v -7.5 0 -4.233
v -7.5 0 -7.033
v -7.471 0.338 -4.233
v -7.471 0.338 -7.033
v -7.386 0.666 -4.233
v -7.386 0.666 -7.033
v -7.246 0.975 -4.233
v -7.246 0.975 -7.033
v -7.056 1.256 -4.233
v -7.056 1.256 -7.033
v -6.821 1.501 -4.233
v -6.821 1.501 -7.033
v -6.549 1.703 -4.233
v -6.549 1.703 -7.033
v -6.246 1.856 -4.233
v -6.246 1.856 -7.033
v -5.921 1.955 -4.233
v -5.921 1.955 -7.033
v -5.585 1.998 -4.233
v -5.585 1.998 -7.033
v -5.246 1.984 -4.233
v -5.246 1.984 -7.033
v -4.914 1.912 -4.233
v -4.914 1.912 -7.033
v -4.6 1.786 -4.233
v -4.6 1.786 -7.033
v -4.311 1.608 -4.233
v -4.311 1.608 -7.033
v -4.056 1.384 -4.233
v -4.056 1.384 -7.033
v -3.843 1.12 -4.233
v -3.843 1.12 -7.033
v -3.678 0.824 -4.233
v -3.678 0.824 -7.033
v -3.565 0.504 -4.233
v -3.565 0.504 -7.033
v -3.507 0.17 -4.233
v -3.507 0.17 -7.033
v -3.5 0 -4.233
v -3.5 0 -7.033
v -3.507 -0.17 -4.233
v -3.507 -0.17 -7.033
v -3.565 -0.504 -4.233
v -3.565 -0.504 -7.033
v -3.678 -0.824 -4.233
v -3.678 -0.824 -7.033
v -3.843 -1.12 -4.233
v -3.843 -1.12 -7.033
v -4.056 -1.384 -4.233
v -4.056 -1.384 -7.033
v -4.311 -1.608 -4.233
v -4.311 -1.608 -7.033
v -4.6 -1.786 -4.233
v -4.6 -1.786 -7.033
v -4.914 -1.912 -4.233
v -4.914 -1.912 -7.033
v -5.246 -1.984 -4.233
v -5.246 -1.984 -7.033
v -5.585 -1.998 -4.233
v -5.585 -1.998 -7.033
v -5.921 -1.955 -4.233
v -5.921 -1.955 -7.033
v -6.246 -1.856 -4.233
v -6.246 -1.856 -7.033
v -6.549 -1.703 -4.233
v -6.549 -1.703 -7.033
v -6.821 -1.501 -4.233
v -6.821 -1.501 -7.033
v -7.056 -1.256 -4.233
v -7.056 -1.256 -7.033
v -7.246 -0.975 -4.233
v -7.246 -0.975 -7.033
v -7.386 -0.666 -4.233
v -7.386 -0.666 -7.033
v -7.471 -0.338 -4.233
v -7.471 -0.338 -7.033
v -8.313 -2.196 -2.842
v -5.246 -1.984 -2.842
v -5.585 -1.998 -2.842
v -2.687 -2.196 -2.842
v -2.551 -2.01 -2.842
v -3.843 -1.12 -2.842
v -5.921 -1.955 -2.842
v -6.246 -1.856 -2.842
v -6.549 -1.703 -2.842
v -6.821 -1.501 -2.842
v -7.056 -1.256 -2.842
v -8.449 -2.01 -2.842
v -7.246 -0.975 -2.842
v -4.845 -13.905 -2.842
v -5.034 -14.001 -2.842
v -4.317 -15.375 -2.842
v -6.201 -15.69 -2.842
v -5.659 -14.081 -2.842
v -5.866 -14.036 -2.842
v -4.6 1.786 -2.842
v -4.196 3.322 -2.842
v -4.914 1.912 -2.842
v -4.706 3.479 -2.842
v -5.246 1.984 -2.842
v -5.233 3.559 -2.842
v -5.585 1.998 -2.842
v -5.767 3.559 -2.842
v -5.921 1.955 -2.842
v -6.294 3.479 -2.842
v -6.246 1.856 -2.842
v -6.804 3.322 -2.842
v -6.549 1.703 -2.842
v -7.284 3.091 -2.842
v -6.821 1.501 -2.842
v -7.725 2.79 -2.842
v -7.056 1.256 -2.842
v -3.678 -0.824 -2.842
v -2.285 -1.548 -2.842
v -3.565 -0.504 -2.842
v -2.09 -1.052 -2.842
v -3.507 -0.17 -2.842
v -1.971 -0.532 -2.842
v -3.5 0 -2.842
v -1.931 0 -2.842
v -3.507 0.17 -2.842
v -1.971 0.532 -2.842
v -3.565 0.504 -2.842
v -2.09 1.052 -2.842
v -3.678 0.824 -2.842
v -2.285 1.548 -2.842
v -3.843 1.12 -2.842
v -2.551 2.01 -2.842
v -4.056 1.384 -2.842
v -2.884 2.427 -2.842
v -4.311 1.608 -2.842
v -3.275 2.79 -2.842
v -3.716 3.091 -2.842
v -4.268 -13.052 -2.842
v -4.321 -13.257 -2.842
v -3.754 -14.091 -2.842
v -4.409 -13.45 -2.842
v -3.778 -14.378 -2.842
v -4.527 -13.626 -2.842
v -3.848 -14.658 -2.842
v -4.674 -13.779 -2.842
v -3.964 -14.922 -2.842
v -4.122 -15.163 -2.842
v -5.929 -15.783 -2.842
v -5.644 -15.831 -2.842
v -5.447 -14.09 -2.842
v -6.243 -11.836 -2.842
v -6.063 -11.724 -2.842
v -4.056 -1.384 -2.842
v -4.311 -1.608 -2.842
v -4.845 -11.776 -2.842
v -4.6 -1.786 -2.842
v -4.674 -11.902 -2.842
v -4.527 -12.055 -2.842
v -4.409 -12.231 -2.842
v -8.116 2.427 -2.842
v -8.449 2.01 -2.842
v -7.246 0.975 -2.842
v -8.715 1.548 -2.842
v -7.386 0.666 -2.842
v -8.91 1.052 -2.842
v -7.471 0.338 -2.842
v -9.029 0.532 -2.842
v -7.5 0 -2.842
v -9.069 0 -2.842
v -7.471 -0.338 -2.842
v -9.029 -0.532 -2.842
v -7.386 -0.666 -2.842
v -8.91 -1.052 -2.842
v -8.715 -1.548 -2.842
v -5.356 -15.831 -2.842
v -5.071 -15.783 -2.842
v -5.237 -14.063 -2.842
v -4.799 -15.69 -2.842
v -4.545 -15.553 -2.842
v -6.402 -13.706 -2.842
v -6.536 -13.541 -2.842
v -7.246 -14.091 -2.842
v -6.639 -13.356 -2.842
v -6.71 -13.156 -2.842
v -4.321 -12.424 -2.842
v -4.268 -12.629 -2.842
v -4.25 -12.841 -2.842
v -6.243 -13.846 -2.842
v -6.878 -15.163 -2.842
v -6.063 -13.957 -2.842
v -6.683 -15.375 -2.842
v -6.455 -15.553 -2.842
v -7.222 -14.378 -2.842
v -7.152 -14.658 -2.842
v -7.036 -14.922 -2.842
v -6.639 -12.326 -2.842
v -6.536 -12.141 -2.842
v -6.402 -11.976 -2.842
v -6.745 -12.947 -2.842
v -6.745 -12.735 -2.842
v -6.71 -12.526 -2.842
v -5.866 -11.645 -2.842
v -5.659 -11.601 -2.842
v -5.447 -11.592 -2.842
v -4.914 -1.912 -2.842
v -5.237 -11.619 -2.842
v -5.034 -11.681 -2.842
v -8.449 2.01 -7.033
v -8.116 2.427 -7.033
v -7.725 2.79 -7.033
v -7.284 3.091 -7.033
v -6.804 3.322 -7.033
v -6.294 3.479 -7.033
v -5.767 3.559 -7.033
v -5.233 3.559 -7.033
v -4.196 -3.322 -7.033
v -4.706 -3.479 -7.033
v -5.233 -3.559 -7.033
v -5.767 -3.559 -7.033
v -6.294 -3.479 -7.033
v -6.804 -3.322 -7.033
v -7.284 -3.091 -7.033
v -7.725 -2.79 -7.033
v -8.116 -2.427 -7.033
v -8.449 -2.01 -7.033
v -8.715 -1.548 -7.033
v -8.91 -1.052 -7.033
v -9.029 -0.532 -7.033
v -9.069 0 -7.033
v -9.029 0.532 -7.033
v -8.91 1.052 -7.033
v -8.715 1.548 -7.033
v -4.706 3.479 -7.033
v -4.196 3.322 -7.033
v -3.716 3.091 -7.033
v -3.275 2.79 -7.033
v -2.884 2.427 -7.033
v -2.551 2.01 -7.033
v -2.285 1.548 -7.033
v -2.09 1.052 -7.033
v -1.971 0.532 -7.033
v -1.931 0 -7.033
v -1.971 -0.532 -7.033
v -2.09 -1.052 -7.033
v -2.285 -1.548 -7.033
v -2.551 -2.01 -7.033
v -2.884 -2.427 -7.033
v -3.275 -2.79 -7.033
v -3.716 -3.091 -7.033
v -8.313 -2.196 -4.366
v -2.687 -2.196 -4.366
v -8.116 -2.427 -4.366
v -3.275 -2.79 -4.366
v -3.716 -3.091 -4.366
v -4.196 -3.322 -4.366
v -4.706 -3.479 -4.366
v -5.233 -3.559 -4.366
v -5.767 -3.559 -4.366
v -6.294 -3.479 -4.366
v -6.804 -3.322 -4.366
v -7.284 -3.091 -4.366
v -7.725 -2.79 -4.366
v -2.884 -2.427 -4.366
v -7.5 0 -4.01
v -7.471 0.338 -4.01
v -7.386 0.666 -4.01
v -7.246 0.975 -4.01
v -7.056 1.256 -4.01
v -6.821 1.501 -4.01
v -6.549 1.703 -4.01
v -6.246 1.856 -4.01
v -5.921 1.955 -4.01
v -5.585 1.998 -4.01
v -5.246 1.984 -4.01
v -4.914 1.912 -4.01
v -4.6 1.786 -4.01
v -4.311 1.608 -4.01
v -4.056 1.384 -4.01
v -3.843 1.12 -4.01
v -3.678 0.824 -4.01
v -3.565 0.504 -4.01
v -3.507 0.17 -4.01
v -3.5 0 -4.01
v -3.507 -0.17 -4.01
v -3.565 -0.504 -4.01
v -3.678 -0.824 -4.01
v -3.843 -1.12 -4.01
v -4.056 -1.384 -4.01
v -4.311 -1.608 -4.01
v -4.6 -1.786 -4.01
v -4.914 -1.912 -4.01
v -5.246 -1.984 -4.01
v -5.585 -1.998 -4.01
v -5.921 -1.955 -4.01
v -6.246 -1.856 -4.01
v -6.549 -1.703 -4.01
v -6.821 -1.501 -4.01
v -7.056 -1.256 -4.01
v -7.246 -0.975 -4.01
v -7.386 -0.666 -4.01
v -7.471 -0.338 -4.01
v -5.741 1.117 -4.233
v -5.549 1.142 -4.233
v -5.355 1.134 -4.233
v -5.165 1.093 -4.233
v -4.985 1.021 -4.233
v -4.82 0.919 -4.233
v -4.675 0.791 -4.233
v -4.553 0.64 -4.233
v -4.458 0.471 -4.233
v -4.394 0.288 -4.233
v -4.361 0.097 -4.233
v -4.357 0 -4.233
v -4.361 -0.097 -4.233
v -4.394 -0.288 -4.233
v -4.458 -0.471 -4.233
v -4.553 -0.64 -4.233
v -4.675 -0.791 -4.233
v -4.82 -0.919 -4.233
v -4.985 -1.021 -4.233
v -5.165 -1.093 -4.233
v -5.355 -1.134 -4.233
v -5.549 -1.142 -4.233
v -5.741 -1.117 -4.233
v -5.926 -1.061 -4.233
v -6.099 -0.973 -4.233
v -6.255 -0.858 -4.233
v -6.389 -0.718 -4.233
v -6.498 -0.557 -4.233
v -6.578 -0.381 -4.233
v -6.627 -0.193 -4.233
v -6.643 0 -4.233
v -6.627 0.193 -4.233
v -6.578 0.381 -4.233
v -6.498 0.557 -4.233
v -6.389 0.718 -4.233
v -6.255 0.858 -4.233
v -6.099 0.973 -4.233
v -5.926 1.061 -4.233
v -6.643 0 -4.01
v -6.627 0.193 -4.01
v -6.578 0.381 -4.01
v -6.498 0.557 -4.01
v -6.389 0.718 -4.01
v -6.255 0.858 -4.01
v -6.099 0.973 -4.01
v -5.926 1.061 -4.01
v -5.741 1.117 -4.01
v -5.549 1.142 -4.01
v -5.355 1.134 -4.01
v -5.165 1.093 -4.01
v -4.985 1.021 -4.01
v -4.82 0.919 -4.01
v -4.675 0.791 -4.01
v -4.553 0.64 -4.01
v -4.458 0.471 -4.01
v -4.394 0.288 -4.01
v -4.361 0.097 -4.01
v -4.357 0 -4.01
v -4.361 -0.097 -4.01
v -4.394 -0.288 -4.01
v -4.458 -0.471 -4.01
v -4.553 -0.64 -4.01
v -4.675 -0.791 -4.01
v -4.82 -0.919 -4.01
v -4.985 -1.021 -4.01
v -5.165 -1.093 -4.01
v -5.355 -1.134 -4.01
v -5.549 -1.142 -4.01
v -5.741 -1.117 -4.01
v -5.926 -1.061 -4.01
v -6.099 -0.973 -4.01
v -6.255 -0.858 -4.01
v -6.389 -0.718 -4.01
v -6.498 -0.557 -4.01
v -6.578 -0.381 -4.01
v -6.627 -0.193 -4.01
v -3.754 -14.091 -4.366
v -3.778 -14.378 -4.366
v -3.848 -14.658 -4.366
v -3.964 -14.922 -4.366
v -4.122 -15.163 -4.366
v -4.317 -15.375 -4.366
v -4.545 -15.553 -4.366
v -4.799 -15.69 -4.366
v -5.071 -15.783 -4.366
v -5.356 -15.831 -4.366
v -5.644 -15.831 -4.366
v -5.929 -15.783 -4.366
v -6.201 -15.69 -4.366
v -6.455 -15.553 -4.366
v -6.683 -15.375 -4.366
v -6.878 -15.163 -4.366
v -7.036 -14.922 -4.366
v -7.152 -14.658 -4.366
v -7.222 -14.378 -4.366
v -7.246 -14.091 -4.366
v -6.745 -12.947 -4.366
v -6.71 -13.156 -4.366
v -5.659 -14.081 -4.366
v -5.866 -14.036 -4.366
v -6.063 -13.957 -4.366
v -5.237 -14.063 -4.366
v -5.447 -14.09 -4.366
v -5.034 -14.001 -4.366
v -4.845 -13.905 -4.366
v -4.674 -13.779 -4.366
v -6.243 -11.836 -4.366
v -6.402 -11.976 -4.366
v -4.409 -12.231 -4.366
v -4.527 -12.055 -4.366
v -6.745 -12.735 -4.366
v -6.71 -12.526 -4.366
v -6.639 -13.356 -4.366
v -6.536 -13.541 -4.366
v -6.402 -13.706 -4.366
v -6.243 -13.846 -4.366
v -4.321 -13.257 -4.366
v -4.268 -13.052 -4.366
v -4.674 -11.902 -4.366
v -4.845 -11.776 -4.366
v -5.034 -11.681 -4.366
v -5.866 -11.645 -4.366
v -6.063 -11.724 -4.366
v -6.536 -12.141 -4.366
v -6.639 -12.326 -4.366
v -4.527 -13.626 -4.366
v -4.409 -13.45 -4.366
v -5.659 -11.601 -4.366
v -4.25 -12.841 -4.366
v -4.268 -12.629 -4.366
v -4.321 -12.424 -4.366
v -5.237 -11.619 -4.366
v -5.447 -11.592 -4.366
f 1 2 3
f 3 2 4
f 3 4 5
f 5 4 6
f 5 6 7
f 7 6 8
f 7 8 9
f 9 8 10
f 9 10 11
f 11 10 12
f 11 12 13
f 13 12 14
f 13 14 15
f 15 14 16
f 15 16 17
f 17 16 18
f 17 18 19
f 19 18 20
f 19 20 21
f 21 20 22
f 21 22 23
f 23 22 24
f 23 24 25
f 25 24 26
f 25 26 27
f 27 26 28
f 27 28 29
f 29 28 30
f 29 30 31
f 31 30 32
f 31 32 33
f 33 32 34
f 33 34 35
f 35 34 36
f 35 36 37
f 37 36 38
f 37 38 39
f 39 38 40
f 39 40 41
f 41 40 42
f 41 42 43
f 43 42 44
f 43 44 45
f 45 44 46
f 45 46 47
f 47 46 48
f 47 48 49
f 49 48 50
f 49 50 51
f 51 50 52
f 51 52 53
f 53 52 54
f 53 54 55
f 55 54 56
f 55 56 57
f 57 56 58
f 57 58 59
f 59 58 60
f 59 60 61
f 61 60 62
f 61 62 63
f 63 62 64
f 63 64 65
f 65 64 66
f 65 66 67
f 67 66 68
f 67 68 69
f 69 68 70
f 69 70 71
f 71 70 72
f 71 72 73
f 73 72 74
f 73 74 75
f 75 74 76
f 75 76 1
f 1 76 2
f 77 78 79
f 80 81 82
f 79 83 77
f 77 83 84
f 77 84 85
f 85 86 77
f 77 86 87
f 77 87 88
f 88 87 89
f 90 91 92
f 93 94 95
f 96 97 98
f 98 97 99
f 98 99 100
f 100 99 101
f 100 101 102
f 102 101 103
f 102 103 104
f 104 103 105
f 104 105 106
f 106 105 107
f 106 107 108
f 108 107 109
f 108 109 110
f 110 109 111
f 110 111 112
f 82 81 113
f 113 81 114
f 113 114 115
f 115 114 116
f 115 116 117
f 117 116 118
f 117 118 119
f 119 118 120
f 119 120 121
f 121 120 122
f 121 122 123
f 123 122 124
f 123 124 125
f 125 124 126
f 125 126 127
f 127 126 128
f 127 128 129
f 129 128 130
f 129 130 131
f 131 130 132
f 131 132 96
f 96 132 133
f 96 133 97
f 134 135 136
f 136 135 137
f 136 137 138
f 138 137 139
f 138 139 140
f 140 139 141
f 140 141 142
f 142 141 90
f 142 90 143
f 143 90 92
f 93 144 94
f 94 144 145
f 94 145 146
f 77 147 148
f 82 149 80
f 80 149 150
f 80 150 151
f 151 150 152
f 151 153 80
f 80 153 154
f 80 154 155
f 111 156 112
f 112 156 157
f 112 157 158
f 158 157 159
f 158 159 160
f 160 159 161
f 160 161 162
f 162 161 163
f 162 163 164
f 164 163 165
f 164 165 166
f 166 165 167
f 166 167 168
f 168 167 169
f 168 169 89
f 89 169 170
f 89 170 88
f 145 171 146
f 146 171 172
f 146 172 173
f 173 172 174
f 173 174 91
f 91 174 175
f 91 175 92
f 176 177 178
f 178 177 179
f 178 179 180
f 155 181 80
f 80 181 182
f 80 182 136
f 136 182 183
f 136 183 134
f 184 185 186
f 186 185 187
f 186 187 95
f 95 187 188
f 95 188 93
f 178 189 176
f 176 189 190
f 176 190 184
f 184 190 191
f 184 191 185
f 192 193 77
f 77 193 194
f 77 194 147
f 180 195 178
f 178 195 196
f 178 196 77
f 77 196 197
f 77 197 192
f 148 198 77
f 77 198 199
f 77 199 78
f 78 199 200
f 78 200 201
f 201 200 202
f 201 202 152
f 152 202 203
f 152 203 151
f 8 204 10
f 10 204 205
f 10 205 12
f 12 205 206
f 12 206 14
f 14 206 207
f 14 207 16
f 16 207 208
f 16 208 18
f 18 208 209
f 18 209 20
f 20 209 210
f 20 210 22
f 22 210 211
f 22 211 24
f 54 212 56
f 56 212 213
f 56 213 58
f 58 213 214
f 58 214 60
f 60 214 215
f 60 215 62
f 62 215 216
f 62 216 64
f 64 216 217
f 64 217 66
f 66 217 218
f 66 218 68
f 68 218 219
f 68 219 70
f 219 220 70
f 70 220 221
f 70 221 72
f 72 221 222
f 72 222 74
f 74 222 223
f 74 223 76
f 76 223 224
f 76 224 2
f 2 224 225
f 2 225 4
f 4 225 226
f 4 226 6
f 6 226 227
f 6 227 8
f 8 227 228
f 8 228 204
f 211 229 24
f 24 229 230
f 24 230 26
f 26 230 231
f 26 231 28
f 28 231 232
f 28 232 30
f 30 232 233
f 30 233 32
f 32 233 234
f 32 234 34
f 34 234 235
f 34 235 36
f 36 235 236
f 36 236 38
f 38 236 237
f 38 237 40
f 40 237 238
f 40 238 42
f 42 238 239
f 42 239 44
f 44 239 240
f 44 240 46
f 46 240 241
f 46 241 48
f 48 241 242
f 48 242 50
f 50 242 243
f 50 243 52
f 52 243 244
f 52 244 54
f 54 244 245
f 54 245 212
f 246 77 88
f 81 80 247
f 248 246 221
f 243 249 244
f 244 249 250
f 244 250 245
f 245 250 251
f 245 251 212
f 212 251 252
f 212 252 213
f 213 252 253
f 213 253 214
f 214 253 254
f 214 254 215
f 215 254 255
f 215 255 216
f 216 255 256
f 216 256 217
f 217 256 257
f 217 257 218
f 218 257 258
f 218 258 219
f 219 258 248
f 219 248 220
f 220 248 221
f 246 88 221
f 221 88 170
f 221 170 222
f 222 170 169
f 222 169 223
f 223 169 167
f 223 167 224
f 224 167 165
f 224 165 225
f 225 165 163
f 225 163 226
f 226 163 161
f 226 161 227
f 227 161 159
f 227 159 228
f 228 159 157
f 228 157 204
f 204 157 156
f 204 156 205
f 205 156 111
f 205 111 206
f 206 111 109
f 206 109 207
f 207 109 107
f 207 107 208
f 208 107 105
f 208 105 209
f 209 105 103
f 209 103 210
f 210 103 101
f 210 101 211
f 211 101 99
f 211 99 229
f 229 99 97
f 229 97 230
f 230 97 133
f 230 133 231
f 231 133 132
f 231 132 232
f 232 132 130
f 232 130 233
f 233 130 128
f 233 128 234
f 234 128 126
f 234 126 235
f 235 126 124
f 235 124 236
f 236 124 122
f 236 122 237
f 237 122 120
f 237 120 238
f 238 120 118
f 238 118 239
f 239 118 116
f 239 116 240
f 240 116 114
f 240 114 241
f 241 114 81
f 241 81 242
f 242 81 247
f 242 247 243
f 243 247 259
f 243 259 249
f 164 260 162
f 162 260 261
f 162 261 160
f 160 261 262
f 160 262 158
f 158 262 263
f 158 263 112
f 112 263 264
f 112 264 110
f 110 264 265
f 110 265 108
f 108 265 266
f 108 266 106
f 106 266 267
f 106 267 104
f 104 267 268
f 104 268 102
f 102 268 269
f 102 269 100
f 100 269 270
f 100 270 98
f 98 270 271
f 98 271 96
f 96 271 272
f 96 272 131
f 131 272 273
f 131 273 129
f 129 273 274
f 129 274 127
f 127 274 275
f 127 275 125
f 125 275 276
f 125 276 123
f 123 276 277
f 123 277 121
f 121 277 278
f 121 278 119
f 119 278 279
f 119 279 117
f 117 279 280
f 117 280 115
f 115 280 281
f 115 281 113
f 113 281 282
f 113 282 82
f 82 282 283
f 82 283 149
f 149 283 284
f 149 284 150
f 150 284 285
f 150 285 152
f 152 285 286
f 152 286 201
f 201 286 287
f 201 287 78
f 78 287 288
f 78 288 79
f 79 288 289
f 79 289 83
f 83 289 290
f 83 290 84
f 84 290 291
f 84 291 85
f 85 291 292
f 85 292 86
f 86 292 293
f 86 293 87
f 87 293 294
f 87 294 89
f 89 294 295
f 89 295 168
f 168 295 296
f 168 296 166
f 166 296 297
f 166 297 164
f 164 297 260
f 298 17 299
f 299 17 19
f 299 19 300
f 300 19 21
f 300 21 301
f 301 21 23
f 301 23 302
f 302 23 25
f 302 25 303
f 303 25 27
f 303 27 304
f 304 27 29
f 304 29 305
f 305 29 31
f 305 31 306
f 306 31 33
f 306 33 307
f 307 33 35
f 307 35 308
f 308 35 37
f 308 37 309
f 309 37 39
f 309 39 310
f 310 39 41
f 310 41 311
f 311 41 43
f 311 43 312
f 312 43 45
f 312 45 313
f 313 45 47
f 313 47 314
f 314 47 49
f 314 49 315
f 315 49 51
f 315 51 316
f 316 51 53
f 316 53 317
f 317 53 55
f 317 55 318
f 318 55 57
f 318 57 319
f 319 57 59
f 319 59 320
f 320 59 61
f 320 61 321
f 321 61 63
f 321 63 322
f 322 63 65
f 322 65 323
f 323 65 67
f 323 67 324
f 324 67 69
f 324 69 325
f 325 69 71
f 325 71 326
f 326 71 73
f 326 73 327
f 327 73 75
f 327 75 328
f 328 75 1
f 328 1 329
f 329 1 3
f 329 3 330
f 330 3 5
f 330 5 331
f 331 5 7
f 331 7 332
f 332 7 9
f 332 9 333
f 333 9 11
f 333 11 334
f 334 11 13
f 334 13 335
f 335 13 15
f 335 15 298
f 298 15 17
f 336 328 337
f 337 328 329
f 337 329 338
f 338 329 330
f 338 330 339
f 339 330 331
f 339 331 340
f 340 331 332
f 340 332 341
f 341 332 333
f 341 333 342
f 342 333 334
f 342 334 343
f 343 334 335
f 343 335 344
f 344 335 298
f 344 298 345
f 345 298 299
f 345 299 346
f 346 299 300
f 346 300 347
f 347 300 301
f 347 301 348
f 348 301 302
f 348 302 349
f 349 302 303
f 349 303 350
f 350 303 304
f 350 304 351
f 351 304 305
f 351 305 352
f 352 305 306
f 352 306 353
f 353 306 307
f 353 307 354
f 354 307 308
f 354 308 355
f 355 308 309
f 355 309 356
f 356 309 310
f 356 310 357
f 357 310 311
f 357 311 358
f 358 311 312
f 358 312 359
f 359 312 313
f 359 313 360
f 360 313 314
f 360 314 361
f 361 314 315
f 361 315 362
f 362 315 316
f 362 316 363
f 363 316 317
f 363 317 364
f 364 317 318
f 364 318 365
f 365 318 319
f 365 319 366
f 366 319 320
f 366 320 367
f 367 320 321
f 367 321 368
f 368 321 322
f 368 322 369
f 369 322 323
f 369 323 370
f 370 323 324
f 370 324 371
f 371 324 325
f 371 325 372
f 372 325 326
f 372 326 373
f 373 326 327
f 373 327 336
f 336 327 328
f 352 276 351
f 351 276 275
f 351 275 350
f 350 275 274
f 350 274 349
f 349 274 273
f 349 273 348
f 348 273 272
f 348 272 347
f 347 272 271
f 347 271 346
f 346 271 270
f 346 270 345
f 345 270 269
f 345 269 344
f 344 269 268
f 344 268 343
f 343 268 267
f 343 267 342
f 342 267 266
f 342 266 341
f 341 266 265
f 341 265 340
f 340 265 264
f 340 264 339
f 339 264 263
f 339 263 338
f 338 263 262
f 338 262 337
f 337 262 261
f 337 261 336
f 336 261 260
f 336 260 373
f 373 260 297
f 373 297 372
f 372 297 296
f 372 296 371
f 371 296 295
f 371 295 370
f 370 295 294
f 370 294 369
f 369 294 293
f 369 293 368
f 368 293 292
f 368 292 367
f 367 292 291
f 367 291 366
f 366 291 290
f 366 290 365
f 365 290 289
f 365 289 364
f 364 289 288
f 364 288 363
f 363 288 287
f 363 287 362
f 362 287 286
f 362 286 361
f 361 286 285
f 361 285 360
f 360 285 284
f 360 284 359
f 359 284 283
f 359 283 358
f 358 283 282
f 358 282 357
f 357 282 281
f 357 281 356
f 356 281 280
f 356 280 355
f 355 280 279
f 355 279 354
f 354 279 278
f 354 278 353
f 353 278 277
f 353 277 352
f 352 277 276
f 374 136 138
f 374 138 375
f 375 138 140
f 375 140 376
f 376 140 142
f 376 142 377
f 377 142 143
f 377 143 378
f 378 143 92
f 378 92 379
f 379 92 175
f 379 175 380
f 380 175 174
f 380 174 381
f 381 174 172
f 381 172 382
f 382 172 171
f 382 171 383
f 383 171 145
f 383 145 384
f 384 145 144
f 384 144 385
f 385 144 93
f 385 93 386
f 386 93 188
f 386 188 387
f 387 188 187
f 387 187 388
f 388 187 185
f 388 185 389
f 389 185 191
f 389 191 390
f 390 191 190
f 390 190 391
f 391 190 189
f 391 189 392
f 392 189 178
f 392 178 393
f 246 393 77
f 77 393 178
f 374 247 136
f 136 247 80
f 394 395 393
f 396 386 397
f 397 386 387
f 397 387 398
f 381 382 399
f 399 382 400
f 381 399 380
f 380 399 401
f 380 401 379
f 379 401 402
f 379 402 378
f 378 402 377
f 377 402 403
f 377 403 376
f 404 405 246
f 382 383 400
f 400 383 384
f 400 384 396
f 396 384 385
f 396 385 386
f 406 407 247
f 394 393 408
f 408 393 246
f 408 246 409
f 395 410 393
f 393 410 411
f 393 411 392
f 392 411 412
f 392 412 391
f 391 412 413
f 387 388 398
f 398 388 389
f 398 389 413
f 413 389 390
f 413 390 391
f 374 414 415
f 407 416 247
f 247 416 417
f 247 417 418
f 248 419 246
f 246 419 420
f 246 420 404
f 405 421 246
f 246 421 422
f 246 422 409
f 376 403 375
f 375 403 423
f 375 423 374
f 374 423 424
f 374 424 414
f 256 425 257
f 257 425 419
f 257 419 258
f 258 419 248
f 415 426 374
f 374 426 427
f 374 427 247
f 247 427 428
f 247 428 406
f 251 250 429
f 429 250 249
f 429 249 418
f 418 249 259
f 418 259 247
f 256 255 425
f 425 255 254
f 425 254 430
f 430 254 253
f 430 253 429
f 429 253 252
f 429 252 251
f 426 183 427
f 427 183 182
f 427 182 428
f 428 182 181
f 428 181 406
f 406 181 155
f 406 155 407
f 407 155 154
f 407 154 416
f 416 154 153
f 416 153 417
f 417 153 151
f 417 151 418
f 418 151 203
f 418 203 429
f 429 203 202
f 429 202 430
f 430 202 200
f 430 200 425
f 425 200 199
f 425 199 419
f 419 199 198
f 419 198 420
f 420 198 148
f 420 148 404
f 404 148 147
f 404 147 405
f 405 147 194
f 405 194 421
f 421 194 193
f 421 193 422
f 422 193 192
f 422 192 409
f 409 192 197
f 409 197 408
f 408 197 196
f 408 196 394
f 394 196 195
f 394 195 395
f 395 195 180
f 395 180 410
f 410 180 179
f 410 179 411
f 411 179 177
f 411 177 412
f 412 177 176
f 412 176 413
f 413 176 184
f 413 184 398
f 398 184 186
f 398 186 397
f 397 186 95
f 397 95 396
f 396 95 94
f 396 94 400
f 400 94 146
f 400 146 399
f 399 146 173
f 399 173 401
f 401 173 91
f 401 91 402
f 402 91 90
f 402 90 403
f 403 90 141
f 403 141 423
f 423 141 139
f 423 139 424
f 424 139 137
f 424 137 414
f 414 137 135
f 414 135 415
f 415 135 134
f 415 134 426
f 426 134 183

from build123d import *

# Parameters (mm, degrees)
SKETCH1_R           = 3.5687
SKETCH1_R_2         = 2
BOSS_EXTRUDE1_DEPTH = 4.191
SKETCH5_R           = 2
SKETCH5_R_2         = 1.143
BOSS_EXTRUDE2_DEPTH = 0.2226
BOSS_EXTRUDE3_START = -1.524
SKETCH6_R           = 1.25
BOSS_EXTRUDE3_DEPTH = 1.524


with BuildPart() as part:
    # Sketch1 → Boss-Extrude1 (new body)
    with BuildSketch(Plane.XY.offset(-7.032965862)):
        with Locations((-5.5, 0)):
            Circle(SKETCH1_R)
        with Locations((-5.5, 0)):
            Circle(SKETCH1_R_2, mode=Mode.SUBTRACT)
    extrude(amount=BOSS_EXTRUDE1_DEPTH)

    # Sketch5 → Boss-Extrude2 (add)
    with BuildSketch(Plane.XY.offset(-4.232965862)):
        with Locations((-5.5, 0)):
            Circle(SKETCH5_R)
        with Locations((-5.5, 0)):
            Circle(SKETCH5_R_2, mode=Mode.SUBTRACT)
    extrude(amount=BOSS_EXTRUDE2_DEPTH)

    # Sketch6 → Boss-Extrude3 (add)
    with BuildSketch(Plane.XY.offset(-2.841965862).offset(BOSS_EXTRUDE3_START)):
        with BuildLine():
            Line((-3.75375, -14.09065), (-2.68695, -2.195989387))
            ThreePointArc((-2.68695, -2.195989387), (-5.5, -3.5687), (-8.31305, -2.195989387))
            Line((-8.31305, -2.195989387), (-7.24625, -14.09065))
            ThreePointArc((-7.24625, -14.09065), (-5.5, -15.8369), (-3.75375, -14.09065))
        make_face()
        with Locations((-5.5, -12.84065)):
            Circle(SKETCH6_R, mode=Mode.SUBTRACT)
    extrude(amount=BOSS_EXTRUDE3_DEPTH)


solid = part.part
